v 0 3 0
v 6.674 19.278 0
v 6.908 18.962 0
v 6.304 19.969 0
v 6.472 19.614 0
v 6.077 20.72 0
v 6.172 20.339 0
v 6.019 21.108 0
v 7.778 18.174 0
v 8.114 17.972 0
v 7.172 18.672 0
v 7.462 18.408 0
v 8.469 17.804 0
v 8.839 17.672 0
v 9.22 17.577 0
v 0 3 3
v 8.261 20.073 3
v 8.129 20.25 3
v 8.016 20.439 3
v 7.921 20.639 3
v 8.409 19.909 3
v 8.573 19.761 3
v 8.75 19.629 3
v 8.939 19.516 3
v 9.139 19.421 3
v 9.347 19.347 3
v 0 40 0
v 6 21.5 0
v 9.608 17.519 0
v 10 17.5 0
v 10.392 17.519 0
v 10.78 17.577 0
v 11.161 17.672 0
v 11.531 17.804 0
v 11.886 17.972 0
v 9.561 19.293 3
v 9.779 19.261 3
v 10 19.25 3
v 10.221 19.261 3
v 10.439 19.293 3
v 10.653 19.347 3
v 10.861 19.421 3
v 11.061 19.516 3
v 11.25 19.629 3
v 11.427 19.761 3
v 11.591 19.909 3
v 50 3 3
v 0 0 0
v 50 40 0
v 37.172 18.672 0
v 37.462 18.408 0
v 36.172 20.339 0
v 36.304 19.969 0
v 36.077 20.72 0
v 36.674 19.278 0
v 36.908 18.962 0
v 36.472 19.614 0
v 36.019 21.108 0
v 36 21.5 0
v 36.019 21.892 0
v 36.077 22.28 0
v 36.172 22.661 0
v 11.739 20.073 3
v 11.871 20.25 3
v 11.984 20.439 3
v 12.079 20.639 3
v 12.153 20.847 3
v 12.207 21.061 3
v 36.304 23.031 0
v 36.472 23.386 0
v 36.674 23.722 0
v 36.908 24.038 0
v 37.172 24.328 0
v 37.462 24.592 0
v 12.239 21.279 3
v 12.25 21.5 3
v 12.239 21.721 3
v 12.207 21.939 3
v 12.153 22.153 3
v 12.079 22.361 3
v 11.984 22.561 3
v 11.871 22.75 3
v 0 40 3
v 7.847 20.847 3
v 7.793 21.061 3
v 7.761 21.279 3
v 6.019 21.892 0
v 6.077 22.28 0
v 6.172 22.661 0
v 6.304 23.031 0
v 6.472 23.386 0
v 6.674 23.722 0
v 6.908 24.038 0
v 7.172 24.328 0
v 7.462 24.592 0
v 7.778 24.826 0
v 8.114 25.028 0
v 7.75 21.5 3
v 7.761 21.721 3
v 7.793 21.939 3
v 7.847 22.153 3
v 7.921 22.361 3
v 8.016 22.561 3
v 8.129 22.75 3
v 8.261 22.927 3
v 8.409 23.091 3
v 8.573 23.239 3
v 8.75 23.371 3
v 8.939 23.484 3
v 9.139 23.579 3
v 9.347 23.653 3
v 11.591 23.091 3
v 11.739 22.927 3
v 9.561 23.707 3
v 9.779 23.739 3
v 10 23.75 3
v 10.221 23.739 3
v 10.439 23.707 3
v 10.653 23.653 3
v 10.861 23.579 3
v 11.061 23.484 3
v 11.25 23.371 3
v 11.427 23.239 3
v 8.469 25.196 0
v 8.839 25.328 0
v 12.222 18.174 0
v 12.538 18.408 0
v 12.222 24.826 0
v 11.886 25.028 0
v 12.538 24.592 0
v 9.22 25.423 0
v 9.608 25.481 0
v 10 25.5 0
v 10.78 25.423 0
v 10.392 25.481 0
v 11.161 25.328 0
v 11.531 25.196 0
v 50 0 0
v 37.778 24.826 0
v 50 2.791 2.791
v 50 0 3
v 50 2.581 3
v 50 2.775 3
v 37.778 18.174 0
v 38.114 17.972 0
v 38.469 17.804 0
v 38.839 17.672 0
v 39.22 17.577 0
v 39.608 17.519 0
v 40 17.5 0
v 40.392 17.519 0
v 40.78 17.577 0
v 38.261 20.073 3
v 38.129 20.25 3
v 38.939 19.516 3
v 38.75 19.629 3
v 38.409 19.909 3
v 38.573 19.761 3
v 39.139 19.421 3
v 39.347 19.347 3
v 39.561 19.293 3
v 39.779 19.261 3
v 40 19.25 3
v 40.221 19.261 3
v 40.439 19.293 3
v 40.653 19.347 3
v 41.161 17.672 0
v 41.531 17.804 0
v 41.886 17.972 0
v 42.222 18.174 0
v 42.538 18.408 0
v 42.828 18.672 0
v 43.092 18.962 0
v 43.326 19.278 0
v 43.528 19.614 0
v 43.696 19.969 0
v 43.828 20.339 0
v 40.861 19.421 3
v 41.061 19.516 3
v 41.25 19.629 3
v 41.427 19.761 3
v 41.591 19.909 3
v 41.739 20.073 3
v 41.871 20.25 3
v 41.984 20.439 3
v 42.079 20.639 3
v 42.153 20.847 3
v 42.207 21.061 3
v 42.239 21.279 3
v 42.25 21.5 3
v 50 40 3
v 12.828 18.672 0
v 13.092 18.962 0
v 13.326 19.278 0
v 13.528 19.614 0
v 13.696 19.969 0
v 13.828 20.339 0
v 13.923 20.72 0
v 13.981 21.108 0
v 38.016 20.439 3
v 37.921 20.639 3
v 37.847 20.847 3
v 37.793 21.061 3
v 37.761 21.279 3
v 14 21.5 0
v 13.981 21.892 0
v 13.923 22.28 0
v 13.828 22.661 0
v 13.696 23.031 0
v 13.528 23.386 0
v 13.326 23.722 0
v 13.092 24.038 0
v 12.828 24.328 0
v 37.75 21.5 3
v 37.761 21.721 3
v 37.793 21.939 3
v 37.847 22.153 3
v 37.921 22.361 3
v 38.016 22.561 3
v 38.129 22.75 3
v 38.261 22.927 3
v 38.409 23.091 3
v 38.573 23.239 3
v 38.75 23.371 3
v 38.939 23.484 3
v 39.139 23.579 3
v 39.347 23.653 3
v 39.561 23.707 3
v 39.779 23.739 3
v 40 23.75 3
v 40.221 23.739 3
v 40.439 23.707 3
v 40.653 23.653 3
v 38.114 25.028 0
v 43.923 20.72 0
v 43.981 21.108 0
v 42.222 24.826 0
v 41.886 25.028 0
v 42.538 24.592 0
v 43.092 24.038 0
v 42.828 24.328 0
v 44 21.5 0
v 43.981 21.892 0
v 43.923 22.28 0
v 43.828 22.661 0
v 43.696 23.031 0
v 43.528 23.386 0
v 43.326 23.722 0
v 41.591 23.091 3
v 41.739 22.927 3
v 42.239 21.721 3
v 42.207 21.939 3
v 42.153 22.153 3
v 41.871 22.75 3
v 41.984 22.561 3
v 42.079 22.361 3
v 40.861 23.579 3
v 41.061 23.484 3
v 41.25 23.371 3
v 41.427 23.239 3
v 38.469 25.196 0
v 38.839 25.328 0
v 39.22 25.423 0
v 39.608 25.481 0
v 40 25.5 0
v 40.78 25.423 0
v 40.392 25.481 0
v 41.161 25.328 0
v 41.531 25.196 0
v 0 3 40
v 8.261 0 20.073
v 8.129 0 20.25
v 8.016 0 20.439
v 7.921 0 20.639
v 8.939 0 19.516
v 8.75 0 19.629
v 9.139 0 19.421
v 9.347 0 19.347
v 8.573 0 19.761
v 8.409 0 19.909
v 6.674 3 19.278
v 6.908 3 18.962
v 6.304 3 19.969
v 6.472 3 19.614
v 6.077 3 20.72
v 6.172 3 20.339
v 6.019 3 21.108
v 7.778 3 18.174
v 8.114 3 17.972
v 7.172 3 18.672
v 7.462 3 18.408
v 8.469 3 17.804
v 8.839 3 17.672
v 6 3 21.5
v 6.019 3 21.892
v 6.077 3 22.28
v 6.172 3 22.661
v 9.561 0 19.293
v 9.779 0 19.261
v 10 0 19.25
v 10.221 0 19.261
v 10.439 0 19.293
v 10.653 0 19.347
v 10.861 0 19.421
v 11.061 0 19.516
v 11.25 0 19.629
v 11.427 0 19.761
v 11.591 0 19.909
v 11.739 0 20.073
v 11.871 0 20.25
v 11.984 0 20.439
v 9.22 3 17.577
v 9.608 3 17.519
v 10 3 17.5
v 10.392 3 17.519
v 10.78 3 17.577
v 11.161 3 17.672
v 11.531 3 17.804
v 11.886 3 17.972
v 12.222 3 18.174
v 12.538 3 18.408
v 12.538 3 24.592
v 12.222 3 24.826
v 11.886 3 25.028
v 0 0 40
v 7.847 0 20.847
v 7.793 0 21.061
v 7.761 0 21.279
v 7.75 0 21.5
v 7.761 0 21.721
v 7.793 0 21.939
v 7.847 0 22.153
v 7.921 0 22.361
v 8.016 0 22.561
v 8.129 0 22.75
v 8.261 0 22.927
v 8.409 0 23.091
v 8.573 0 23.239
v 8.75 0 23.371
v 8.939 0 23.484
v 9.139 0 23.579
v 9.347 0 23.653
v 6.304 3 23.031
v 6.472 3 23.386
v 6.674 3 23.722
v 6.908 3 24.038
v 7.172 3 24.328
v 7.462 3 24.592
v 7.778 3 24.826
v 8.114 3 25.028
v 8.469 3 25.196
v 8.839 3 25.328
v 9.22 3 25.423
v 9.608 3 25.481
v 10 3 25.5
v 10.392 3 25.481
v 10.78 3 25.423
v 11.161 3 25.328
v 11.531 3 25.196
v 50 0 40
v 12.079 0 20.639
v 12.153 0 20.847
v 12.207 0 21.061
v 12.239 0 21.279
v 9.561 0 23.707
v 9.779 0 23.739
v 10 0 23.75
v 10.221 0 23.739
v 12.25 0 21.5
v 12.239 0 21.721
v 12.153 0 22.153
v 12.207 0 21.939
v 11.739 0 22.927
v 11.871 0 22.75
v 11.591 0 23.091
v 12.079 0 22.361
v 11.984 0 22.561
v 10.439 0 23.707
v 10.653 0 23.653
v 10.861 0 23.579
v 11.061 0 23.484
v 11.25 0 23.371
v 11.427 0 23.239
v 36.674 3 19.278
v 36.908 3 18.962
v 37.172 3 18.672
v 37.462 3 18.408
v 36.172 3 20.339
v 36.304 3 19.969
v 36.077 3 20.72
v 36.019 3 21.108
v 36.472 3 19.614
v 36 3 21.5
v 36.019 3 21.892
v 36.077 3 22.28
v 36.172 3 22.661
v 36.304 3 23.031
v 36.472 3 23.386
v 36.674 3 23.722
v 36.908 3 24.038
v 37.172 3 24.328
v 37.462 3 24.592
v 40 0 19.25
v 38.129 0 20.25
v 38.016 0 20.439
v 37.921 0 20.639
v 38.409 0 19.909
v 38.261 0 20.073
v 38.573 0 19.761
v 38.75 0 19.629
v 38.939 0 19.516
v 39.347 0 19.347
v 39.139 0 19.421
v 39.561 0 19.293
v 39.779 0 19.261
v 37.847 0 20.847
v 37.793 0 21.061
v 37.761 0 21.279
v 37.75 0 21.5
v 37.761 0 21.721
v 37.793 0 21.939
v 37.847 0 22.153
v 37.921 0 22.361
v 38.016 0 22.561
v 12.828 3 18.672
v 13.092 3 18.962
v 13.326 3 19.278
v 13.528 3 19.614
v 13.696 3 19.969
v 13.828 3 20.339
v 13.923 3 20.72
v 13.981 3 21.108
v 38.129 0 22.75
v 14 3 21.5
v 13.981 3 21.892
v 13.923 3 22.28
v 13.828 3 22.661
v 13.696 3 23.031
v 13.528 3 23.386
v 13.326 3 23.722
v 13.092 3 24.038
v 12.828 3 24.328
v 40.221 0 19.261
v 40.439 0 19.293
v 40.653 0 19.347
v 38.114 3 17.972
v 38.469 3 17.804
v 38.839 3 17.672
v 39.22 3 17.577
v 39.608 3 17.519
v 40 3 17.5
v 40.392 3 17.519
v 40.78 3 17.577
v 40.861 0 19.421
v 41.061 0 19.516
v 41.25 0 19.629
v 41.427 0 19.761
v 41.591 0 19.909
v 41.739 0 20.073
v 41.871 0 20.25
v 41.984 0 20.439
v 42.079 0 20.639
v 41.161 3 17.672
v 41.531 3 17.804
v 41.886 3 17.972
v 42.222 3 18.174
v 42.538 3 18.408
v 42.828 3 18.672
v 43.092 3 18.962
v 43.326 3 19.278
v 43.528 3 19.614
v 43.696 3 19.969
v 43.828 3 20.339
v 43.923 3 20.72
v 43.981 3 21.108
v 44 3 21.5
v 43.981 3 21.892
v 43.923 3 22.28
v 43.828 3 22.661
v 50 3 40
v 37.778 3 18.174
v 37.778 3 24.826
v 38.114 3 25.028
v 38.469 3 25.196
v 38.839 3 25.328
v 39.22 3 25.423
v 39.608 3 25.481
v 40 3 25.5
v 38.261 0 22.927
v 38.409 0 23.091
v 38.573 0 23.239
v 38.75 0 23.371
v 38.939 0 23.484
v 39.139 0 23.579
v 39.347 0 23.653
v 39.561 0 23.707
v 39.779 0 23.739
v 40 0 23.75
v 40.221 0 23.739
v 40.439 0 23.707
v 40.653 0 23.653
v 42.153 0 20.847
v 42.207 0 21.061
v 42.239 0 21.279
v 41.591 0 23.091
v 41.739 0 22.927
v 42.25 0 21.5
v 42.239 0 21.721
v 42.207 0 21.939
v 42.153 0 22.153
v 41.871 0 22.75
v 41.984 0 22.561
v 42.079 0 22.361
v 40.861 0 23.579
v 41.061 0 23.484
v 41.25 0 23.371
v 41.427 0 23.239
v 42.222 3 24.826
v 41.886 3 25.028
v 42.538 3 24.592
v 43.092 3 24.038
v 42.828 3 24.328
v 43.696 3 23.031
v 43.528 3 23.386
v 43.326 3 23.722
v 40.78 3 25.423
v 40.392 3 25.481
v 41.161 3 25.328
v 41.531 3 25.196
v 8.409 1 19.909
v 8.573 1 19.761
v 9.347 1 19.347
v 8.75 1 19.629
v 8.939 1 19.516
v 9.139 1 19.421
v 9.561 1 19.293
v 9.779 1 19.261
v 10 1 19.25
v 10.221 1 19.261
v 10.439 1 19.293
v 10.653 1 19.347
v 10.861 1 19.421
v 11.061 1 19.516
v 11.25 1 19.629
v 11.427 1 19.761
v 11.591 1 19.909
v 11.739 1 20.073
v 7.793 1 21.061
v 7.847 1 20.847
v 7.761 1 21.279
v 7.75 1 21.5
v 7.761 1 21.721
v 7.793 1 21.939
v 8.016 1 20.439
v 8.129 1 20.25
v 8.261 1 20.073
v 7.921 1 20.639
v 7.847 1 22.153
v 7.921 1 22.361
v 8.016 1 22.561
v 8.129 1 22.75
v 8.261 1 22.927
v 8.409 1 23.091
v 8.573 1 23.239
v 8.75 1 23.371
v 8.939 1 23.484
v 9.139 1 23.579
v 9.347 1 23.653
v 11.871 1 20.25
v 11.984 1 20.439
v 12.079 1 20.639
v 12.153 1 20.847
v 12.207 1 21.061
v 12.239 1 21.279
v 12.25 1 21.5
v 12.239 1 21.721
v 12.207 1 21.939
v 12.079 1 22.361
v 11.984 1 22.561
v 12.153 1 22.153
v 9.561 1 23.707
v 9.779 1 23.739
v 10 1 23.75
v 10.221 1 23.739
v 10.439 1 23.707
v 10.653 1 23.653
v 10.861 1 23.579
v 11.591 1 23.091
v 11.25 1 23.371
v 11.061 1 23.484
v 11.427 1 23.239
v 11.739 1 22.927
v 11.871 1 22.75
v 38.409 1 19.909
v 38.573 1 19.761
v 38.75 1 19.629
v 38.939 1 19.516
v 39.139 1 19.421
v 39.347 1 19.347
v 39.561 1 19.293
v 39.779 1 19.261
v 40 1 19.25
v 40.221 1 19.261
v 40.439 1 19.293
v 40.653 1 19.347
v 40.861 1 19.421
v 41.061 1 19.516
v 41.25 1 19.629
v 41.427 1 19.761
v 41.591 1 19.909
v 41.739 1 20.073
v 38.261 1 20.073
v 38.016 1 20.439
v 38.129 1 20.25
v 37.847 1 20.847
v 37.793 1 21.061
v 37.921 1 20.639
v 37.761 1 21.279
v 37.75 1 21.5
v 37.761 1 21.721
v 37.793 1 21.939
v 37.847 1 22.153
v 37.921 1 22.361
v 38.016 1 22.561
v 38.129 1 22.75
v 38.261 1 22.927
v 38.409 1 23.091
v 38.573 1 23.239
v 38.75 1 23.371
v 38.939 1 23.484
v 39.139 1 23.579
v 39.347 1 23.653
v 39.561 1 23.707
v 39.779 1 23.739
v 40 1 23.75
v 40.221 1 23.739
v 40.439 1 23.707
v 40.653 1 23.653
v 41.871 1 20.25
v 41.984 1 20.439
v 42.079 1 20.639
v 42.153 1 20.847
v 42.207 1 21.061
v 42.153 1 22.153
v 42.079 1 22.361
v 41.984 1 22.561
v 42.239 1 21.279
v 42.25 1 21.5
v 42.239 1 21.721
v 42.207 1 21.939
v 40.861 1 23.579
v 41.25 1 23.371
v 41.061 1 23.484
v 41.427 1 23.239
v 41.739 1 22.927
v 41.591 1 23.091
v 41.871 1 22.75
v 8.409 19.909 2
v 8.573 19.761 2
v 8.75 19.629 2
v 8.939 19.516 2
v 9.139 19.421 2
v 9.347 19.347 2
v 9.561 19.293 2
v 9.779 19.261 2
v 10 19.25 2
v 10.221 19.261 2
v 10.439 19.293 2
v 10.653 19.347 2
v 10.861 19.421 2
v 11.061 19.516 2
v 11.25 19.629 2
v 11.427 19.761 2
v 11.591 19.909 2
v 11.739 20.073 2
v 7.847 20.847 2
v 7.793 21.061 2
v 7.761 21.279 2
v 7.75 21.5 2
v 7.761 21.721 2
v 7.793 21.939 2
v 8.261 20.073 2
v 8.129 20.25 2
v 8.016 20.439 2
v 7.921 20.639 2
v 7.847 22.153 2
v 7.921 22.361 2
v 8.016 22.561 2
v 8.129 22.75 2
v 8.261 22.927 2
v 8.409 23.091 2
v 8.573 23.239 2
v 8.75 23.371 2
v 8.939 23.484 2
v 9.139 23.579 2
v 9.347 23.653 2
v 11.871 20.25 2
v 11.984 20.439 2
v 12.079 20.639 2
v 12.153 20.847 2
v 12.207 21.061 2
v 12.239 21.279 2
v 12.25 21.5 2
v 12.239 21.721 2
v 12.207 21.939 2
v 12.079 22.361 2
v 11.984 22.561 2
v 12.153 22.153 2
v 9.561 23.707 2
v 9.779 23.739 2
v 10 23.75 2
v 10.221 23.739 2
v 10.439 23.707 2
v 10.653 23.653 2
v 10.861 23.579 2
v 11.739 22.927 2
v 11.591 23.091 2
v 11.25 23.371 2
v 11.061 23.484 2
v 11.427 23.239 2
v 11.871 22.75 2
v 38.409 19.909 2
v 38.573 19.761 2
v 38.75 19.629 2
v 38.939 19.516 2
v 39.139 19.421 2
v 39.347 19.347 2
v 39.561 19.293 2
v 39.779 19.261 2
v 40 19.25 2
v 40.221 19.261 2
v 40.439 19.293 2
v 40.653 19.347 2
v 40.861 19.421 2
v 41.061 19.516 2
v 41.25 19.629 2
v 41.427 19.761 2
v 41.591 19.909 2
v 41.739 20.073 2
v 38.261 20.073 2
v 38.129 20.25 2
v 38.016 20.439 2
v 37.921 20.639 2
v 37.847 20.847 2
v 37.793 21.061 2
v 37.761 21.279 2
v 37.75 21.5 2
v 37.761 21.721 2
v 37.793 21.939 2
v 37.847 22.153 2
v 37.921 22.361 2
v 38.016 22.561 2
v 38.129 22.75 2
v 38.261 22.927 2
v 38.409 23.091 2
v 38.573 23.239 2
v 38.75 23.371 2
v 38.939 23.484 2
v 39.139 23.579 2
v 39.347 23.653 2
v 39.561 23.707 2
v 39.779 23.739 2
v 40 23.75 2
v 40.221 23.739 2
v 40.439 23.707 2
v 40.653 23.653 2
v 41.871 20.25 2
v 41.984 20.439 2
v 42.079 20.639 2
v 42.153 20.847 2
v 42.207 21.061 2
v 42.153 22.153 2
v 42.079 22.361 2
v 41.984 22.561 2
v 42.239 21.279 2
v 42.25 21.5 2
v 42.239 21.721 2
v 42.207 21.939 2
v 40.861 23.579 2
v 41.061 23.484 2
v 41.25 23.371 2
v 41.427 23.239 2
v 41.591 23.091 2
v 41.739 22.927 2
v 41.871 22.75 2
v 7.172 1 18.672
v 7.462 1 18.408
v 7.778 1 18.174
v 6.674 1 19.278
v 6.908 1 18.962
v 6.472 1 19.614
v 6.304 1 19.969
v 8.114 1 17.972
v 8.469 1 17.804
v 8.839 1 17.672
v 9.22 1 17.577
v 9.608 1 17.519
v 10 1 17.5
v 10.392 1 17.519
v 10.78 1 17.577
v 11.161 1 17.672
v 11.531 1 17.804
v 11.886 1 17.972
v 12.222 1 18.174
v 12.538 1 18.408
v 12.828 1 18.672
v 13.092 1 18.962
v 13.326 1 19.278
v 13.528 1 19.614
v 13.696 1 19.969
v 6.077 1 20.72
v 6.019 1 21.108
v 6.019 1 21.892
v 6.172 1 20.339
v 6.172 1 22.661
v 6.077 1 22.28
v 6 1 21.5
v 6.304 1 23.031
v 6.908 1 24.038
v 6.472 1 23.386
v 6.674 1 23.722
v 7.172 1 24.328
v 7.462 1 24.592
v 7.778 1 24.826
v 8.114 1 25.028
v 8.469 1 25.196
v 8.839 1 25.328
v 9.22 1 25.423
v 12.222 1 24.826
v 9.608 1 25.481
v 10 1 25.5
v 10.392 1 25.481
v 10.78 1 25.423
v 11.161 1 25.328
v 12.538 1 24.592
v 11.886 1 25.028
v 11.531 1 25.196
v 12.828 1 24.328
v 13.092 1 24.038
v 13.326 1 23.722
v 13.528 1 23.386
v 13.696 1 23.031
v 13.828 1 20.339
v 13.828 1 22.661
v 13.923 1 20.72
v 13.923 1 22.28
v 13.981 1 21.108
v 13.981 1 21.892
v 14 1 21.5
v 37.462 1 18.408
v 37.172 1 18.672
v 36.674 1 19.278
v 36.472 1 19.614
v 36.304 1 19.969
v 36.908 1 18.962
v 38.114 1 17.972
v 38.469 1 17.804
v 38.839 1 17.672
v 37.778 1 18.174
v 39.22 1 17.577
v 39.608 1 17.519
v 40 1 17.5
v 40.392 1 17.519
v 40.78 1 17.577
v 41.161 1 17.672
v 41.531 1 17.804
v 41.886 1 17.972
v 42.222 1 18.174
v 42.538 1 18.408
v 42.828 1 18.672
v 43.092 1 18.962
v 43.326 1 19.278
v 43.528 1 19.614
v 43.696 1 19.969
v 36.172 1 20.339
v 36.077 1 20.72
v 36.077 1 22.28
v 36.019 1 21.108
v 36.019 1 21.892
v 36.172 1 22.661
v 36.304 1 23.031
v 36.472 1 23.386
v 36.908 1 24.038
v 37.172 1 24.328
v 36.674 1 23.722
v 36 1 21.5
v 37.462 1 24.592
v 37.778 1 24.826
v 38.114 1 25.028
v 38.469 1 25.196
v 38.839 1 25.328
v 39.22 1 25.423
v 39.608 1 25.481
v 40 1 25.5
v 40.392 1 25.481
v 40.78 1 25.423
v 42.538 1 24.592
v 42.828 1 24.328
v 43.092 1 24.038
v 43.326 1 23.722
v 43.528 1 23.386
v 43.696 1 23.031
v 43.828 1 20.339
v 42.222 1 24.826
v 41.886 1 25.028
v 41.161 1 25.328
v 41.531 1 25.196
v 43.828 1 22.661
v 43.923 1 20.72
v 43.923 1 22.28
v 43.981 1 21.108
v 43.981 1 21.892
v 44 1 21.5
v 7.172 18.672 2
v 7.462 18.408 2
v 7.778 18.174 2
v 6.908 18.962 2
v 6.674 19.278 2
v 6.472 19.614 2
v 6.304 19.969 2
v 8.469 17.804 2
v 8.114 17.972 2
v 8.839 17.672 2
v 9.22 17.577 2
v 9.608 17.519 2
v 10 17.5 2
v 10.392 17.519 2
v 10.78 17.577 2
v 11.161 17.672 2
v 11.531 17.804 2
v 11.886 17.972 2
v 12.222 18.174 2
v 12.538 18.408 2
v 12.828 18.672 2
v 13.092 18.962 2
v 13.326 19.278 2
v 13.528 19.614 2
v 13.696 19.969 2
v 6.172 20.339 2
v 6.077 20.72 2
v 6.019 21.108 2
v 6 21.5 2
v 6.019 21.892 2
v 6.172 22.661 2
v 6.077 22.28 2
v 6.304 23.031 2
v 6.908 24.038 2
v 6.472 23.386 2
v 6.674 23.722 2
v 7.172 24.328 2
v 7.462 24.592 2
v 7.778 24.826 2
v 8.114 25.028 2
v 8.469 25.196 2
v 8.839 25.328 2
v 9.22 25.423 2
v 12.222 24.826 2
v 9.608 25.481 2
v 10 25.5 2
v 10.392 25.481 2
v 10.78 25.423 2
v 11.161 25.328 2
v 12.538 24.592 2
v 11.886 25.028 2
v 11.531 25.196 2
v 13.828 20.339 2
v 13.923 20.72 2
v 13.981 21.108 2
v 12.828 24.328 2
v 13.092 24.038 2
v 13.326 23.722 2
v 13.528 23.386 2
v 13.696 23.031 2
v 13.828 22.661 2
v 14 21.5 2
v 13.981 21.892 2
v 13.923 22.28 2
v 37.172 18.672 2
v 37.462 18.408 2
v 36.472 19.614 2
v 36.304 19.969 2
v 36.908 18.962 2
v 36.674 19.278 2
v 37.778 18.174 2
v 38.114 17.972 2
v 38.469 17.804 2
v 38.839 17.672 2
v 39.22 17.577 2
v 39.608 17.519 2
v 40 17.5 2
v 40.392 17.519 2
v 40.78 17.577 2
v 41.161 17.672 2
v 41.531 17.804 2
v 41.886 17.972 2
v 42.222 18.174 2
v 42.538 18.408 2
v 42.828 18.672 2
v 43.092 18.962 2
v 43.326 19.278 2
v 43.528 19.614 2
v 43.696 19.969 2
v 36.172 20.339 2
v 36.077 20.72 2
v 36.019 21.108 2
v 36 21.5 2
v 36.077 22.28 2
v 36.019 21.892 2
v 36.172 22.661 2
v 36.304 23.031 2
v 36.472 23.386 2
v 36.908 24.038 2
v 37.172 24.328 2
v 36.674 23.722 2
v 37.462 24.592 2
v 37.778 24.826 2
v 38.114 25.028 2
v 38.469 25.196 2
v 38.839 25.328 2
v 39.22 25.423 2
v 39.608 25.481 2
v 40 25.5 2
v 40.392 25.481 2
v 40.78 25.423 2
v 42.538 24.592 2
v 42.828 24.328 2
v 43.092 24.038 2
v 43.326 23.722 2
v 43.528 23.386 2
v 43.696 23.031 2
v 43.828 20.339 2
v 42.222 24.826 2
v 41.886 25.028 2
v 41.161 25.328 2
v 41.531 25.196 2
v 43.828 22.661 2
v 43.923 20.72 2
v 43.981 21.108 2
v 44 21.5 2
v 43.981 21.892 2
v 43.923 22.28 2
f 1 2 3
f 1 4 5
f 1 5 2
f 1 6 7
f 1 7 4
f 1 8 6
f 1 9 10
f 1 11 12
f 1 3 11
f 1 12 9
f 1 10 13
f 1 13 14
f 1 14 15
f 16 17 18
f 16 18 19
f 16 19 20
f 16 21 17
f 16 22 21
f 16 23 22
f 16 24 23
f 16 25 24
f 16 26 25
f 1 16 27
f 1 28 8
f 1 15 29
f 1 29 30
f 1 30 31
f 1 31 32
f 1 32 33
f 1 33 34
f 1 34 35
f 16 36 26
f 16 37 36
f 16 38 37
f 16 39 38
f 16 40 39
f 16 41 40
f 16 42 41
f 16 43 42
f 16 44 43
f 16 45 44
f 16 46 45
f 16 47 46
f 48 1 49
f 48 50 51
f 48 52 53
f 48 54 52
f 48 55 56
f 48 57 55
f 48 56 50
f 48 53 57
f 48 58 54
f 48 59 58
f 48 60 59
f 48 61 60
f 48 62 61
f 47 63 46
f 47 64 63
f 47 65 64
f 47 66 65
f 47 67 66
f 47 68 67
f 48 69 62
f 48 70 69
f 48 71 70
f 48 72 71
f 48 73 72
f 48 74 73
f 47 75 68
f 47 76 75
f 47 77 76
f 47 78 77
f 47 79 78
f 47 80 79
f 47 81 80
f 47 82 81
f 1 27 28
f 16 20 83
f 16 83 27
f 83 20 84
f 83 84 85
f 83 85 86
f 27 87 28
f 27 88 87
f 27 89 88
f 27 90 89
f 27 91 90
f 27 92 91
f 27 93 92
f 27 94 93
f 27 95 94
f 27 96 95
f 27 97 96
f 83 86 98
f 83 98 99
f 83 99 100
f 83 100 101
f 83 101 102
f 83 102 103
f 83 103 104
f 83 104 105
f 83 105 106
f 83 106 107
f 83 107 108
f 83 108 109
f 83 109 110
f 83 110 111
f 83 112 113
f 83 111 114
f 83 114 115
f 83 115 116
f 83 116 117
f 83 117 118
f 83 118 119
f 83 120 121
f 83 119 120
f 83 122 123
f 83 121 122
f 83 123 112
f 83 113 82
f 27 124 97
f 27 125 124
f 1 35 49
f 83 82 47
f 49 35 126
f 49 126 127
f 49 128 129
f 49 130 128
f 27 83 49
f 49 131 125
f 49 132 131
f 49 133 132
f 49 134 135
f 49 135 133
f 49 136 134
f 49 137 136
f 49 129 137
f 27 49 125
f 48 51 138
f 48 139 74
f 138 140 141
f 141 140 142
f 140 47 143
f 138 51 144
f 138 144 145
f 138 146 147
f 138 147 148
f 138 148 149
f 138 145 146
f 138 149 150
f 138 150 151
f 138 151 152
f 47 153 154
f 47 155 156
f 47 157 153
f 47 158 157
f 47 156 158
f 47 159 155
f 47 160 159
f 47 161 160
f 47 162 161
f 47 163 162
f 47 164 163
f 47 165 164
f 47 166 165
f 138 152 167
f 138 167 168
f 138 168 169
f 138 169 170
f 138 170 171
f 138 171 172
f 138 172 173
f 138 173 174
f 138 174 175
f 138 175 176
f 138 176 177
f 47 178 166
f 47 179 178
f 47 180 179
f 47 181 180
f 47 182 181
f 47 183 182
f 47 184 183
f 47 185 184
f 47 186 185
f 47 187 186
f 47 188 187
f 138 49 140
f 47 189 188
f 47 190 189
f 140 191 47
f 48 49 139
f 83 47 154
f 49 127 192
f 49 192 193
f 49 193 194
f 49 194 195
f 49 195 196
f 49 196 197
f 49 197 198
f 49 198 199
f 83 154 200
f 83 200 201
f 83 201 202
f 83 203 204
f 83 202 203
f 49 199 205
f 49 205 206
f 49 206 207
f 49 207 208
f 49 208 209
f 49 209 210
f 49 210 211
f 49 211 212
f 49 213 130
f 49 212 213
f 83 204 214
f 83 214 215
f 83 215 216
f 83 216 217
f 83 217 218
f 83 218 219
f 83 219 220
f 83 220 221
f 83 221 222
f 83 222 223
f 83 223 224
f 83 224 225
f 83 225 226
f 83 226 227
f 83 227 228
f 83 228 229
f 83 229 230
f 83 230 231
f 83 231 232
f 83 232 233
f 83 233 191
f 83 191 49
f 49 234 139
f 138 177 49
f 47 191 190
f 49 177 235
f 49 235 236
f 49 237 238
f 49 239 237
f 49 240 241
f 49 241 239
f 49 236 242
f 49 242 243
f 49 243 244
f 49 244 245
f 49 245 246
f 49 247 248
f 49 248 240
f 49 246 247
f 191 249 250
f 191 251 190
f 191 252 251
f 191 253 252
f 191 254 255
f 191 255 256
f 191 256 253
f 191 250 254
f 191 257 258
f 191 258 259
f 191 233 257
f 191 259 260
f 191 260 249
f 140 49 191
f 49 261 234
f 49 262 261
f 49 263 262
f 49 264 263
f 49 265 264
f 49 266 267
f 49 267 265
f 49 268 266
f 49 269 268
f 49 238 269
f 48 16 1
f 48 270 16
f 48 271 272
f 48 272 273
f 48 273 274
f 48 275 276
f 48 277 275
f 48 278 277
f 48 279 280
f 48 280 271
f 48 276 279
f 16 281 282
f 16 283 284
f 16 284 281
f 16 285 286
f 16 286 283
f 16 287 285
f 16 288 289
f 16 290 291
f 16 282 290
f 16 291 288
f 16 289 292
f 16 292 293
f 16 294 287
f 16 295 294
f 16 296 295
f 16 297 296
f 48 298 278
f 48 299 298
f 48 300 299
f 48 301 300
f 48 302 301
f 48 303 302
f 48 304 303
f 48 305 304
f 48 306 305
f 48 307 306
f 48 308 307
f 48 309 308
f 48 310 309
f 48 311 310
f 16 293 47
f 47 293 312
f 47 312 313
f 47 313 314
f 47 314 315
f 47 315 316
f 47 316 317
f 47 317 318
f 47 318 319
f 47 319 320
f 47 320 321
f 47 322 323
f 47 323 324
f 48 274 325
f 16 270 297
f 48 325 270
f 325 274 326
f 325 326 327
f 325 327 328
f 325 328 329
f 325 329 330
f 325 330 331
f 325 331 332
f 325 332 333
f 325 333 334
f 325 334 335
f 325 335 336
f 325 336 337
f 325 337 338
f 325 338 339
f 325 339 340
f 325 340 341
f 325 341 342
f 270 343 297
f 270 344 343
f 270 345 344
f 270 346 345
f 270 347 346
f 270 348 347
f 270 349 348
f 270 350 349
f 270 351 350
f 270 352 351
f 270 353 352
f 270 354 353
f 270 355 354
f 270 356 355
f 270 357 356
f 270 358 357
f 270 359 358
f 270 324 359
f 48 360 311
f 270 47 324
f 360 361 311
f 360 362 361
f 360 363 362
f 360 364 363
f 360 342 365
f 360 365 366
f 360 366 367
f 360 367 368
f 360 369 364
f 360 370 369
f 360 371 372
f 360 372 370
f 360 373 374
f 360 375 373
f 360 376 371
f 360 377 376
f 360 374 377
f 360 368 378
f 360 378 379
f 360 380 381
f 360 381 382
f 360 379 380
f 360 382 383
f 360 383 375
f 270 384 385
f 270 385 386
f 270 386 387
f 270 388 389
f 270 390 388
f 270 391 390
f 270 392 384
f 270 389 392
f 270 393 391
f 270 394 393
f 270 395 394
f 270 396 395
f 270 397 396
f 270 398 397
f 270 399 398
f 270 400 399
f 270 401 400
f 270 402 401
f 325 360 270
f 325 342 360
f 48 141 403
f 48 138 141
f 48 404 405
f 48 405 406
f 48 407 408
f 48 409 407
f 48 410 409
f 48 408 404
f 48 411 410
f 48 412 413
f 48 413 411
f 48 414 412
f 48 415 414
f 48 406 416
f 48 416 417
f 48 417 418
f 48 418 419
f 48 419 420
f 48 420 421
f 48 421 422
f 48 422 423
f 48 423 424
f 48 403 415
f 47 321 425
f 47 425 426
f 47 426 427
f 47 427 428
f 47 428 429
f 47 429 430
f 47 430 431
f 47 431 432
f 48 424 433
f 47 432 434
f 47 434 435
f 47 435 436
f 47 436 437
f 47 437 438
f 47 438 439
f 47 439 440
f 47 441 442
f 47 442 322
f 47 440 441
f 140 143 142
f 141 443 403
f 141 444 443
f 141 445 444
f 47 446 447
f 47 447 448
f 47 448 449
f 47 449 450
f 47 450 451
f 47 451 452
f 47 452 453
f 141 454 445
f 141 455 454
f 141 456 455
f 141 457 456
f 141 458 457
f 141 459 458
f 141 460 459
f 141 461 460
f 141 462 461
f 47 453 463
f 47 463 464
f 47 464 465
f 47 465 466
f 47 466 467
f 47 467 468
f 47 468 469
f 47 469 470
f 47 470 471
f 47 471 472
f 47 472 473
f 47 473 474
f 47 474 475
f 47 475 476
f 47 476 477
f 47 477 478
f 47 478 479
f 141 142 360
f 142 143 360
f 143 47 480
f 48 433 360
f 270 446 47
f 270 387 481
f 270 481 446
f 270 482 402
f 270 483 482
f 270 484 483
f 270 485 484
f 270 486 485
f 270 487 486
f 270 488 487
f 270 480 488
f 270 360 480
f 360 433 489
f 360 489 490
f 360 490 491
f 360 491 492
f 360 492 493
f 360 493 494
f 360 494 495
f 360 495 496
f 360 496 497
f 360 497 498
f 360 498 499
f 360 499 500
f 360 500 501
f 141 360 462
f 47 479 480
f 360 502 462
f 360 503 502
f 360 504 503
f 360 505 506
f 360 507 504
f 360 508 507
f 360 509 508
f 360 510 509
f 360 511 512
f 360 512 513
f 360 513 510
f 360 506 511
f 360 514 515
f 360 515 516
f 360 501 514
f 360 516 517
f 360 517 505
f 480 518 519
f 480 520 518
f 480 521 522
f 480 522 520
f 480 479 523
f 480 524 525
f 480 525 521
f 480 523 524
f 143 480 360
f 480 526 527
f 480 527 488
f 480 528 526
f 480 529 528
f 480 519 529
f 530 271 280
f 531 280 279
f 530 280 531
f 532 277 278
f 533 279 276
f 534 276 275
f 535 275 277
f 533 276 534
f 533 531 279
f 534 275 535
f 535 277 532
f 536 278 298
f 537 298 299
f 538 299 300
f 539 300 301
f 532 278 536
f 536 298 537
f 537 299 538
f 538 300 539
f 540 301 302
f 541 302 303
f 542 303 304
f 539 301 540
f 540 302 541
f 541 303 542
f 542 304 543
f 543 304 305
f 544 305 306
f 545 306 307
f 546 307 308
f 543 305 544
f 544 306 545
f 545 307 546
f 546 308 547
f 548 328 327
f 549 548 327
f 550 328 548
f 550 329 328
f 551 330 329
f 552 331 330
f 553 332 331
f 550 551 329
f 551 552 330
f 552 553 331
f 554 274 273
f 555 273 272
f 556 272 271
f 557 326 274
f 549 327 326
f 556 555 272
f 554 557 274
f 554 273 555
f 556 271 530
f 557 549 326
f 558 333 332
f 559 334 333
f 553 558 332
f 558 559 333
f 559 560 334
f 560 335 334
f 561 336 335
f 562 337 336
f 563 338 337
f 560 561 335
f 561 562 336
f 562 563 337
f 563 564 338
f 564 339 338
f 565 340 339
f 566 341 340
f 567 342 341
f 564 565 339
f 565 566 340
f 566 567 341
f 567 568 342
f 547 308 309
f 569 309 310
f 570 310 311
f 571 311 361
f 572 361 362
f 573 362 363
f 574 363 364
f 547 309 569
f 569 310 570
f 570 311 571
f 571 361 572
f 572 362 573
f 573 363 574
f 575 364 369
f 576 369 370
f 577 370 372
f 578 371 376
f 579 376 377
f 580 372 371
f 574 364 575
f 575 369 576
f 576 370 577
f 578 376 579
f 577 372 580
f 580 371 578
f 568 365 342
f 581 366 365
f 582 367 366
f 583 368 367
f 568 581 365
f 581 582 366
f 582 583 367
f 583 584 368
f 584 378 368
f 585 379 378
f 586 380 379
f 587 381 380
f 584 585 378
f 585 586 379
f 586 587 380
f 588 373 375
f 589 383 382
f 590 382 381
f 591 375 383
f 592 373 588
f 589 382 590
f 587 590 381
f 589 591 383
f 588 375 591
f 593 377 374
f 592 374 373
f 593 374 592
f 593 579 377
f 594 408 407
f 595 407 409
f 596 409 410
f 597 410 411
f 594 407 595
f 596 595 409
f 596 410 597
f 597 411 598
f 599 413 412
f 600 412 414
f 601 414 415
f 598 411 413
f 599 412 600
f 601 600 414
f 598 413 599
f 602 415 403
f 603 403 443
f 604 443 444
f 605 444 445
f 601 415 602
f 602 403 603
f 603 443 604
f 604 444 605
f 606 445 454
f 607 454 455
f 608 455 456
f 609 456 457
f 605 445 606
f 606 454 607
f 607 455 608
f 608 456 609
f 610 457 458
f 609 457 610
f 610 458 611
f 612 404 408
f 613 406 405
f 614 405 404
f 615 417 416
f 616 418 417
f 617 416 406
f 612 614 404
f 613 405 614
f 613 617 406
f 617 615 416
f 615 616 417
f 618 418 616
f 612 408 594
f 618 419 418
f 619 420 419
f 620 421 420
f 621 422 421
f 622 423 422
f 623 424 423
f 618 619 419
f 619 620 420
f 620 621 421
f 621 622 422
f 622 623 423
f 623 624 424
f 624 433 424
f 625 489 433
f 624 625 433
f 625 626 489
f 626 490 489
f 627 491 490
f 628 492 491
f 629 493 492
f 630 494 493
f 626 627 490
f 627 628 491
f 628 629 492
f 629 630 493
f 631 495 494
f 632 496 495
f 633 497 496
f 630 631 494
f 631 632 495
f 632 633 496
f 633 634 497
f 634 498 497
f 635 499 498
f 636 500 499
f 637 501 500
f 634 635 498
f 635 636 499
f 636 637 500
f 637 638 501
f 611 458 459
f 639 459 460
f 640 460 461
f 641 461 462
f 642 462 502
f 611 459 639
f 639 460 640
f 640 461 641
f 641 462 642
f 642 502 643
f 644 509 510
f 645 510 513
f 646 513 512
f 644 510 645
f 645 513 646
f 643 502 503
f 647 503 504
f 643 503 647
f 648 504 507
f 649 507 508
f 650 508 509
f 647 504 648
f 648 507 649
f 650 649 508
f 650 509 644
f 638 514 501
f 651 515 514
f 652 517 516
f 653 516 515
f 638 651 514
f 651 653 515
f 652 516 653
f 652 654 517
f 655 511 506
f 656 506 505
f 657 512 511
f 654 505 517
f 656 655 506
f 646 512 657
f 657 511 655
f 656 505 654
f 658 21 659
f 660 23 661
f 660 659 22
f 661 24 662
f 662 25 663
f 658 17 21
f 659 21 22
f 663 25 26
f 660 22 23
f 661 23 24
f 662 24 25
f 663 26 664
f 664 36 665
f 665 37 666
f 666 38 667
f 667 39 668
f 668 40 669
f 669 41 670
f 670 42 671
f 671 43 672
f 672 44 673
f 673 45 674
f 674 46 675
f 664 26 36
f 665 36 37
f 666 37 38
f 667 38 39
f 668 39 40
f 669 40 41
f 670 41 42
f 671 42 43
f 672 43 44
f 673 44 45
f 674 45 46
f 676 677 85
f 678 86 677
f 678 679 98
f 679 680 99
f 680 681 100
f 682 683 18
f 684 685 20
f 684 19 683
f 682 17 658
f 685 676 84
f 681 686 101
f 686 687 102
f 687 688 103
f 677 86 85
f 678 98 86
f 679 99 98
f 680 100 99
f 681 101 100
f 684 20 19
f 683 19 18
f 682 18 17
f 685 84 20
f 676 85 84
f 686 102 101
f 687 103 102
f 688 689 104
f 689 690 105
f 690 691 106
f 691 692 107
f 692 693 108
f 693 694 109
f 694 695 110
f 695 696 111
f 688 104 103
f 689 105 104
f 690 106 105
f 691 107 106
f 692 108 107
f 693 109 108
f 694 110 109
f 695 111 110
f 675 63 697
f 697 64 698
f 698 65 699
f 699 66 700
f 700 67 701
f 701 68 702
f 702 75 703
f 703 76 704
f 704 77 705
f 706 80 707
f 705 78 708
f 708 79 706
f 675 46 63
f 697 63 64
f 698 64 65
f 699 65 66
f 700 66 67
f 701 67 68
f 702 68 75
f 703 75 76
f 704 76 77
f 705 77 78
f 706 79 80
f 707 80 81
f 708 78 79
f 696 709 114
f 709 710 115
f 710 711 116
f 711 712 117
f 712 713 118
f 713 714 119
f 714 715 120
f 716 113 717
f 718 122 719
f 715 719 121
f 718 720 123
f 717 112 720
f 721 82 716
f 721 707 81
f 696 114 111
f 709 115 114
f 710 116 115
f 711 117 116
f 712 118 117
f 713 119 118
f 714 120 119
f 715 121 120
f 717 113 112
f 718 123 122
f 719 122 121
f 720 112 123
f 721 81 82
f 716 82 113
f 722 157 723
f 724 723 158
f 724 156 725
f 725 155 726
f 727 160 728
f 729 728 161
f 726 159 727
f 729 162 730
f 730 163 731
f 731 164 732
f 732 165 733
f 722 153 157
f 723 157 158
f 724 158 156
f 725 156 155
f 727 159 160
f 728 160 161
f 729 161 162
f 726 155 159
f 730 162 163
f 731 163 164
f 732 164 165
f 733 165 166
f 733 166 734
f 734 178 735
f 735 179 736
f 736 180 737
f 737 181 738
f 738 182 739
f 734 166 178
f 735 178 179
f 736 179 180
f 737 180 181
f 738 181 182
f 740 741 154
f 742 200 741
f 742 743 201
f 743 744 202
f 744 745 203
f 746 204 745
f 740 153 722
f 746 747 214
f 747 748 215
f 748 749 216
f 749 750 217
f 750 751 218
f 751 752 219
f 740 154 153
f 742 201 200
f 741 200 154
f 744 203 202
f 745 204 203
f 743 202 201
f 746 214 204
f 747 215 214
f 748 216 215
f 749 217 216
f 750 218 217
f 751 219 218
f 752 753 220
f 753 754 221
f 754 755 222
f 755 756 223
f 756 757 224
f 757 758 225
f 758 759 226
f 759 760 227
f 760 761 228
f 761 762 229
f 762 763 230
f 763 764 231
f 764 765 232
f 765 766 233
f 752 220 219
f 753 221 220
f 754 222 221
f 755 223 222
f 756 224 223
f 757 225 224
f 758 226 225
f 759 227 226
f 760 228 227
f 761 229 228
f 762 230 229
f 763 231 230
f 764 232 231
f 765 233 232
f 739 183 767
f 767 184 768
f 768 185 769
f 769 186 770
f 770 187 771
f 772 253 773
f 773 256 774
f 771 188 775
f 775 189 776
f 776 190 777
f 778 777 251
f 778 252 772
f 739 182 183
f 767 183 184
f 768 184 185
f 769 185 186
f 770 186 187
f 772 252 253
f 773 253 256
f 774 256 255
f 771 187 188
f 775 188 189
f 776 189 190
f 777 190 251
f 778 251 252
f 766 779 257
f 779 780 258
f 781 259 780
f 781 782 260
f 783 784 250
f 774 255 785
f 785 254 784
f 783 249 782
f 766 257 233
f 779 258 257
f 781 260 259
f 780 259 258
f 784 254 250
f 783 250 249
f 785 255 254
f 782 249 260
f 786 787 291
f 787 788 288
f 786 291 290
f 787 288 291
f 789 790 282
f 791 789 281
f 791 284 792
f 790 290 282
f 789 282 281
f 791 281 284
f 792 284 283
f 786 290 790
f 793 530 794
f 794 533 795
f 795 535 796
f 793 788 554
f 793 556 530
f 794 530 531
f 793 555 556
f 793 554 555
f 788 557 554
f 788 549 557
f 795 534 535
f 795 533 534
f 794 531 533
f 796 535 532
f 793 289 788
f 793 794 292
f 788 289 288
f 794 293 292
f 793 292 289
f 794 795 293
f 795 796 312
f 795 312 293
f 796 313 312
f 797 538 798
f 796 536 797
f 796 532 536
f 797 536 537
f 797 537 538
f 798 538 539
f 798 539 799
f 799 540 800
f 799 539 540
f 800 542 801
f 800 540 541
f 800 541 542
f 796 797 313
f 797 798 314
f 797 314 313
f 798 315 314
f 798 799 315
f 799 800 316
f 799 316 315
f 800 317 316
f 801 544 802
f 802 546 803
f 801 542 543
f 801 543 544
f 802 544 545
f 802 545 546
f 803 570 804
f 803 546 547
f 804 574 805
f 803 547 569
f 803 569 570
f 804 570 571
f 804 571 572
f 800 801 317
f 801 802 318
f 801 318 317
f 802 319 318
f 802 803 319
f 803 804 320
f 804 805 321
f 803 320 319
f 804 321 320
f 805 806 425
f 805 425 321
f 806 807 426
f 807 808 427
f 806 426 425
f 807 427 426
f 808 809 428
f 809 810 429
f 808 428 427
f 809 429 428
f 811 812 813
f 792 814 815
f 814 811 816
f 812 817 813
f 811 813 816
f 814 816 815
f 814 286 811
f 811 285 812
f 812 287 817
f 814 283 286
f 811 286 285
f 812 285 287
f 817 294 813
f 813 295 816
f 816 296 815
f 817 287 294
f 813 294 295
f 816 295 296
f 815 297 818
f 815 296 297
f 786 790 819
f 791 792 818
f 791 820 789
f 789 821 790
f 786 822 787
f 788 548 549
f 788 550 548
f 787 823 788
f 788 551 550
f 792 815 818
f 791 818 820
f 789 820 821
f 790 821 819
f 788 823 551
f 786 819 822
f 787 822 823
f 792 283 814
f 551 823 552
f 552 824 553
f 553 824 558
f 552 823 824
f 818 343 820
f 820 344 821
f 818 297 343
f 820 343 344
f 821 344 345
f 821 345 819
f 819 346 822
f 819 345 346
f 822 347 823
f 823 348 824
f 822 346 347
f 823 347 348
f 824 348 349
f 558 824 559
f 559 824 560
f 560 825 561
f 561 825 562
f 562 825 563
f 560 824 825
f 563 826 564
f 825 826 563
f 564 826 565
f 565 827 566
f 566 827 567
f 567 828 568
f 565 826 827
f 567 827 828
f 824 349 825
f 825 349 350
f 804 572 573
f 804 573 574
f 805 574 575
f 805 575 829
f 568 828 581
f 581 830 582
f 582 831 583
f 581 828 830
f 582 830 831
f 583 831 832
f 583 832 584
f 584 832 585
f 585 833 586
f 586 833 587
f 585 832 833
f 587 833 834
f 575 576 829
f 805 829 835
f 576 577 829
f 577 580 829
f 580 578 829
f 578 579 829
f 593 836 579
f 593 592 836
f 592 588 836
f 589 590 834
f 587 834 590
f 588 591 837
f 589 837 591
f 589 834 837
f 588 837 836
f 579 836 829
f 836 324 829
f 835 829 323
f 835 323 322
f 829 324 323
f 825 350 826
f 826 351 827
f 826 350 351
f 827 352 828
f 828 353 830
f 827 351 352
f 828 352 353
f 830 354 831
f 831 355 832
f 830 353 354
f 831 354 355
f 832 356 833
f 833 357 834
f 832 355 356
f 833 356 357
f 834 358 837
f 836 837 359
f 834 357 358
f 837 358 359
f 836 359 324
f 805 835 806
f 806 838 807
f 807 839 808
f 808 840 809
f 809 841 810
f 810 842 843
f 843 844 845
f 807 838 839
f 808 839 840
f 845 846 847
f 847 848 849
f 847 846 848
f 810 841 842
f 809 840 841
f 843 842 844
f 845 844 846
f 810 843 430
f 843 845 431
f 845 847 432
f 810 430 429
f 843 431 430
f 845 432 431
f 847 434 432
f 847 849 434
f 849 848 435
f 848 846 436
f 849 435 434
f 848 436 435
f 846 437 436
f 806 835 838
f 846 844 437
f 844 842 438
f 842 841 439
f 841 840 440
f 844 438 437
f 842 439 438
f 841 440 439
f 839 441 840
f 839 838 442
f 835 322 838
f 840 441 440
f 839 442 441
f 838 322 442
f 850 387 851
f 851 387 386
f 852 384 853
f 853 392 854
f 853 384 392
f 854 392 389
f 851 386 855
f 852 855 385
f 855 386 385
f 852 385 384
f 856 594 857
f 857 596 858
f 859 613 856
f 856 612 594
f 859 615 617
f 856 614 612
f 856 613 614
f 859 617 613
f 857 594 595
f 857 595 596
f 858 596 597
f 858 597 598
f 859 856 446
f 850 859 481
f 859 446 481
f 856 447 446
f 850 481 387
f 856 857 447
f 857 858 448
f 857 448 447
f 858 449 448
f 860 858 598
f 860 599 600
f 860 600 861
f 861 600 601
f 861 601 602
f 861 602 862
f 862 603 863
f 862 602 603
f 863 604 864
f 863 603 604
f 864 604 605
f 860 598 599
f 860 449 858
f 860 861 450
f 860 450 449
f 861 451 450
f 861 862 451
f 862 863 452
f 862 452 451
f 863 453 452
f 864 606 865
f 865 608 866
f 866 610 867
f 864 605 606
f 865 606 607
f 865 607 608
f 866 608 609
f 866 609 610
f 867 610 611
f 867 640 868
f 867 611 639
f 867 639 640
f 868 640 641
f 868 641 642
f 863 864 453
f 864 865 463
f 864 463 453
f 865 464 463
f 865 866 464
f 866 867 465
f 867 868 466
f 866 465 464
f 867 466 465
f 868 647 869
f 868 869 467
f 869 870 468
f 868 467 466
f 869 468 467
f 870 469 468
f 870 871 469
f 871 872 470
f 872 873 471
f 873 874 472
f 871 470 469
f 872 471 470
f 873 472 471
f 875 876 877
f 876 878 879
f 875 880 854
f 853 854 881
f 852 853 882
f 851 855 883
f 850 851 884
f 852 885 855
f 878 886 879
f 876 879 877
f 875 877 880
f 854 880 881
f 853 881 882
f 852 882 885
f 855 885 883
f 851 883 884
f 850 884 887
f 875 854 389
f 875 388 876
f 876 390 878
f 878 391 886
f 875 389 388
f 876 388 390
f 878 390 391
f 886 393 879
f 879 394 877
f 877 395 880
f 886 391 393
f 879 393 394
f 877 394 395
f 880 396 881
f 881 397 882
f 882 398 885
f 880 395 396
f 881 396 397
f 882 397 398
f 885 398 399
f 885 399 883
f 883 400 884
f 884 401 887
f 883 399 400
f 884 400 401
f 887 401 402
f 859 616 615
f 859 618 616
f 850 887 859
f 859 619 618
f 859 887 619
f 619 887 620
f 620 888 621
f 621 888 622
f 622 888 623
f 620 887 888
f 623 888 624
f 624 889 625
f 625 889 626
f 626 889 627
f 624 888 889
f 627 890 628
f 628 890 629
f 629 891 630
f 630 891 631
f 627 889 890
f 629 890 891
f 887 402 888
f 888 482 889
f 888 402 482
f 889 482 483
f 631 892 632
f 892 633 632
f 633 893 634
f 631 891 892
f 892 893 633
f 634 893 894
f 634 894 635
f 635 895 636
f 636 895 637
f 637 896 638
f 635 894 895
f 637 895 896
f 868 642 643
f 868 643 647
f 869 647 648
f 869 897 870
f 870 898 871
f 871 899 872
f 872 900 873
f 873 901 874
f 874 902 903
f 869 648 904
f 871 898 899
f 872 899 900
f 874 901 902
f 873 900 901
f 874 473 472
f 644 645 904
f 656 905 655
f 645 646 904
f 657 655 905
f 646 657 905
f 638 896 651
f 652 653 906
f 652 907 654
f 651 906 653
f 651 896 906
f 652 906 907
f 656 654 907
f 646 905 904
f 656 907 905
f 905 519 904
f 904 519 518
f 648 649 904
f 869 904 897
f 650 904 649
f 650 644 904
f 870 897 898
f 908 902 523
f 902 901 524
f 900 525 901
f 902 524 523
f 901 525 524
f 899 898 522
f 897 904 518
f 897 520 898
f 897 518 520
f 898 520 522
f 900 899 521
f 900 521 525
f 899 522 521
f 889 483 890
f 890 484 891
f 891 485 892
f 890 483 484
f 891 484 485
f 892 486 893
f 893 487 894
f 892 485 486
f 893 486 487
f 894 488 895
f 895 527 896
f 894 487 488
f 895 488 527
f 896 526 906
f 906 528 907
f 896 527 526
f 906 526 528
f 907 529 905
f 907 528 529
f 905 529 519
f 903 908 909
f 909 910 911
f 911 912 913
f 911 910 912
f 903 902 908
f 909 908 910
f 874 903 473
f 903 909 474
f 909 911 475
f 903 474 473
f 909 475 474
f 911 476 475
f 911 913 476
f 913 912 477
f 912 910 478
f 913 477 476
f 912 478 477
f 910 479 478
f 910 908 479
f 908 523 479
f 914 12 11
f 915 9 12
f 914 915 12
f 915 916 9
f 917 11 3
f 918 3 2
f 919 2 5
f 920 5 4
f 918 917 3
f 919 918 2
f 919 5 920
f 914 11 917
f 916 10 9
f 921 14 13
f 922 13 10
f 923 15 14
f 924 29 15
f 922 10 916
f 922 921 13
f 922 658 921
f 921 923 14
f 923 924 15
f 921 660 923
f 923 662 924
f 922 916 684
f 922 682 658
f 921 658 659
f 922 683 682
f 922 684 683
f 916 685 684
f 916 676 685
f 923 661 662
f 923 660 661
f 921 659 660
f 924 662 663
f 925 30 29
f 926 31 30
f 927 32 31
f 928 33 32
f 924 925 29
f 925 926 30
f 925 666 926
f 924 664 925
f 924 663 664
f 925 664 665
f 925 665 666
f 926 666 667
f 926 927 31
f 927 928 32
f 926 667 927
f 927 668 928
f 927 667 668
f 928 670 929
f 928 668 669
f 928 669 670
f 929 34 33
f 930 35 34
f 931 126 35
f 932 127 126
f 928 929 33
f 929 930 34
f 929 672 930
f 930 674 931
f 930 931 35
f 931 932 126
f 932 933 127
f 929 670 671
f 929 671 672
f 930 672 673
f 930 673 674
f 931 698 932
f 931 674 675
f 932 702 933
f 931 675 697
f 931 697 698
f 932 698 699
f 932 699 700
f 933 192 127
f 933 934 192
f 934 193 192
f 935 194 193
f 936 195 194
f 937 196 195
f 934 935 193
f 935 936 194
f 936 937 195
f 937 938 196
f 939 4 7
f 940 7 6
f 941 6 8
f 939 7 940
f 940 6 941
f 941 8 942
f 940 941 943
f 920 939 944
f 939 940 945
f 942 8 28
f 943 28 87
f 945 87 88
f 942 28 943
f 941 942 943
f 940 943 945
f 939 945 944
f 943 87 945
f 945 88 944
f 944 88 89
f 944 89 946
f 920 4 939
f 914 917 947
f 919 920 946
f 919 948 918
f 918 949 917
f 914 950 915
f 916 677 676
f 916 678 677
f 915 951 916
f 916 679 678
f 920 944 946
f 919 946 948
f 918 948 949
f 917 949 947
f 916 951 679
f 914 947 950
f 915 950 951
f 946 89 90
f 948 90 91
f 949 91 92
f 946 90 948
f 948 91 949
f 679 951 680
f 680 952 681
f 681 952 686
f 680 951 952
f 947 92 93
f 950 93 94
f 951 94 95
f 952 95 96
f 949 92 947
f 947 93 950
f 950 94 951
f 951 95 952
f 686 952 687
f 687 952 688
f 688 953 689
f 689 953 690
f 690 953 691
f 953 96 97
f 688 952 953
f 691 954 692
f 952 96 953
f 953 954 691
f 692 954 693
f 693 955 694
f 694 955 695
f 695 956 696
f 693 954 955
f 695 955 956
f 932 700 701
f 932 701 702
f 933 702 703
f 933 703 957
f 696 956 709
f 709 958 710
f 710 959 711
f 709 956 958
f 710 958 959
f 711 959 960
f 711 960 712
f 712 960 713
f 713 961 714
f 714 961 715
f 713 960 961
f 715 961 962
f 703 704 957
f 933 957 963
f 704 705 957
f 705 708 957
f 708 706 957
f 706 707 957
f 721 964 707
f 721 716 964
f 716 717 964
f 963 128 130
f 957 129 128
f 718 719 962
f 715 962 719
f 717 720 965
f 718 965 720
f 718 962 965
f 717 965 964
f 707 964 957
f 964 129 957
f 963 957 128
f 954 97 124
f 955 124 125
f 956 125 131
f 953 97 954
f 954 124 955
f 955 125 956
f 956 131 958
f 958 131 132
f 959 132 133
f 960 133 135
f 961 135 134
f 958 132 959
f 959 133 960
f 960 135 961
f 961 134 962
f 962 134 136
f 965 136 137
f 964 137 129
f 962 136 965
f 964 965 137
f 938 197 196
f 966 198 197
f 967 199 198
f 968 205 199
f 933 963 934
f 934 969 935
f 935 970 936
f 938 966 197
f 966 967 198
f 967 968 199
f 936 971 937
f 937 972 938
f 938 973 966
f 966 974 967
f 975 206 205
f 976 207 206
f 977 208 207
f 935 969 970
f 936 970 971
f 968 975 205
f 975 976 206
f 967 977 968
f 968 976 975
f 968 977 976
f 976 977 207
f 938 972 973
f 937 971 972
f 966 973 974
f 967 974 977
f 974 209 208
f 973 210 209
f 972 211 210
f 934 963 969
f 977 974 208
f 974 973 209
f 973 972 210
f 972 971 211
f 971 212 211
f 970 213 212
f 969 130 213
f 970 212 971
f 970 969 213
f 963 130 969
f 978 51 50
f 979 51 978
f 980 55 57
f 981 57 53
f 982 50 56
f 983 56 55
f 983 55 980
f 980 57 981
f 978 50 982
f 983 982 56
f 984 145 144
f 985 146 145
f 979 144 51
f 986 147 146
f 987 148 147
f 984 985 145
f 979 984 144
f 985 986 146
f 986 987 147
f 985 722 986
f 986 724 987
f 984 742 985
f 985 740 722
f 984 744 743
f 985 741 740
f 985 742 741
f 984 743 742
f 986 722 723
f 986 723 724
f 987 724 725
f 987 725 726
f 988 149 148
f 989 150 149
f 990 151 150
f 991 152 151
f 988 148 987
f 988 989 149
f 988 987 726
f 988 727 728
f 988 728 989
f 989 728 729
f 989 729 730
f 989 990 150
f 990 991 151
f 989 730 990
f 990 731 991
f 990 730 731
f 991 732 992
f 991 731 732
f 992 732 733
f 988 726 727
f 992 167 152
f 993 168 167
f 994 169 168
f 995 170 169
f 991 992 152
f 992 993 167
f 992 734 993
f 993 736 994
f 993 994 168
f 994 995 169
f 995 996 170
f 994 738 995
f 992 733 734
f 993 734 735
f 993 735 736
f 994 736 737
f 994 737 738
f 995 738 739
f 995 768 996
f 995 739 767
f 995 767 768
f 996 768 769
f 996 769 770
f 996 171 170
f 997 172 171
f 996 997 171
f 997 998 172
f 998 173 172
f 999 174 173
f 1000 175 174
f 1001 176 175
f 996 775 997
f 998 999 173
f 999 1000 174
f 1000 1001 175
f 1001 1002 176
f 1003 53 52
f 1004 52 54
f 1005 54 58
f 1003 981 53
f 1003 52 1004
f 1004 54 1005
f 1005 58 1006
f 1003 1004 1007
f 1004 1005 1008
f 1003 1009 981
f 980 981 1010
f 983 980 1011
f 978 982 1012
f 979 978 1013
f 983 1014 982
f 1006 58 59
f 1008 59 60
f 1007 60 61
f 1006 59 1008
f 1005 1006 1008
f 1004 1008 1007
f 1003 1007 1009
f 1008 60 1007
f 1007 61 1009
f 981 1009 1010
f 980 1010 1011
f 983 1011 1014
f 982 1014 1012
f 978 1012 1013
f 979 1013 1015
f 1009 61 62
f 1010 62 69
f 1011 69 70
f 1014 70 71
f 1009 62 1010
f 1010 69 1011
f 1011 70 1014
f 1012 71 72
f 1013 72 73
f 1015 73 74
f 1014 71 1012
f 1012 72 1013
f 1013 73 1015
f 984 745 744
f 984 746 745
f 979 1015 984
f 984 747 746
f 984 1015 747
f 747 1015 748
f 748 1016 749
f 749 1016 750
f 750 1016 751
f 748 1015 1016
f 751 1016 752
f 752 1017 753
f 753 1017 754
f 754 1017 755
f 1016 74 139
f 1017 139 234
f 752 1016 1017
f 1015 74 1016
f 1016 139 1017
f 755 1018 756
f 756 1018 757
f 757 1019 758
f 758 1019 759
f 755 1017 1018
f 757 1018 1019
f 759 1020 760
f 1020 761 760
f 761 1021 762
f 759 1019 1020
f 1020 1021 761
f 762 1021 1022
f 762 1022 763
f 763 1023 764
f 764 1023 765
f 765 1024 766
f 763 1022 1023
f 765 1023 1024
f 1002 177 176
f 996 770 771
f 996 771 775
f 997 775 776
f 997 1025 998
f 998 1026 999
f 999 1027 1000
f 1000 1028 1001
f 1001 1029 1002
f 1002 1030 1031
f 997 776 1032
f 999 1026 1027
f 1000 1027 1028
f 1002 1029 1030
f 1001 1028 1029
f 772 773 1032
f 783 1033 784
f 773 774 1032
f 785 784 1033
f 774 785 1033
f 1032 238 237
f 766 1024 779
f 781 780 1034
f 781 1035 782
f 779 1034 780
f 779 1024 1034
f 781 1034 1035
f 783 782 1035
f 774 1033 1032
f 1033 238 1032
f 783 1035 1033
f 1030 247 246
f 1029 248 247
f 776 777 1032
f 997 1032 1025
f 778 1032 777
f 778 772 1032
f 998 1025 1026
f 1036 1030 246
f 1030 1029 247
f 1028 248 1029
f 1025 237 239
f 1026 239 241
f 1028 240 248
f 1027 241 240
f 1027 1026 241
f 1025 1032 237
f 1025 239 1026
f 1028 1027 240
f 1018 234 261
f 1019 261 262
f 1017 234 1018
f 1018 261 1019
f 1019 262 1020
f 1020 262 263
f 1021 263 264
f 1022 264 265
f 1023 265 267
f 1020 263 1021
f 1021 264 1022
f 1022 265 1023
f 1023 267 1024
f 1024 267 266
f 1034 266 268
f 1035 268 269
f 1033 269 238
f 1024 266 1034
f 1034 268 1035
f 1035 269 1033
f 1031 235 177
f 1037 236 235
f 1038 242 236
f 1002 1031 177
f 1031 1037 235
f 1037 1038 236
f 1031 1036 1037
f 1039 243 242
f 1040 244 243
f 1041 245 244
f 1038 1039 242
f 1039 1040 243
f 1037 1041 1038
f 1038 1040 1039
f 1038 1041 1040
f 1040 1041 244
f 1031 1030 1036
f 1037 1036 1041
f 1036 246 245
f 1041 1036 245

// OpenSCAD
$fn = 64;

width = 50;
depth = 40;
height = 40;
t = 3;

hole_d = 4.5;
cs_d = 8;
cs_depth = 2;

module countersunk_hole_z() {
    // axis along Z, countersink on top (+Z side)
    translate([0, 0, -1])
        cylinder(d = hole_d, h = t + 2);
    translate([0, 0, t - cs_depth])
        cylinder(d = cs_d, h = cs_depth + 1);
}

difference() {
    union() {
        // Horizontal flange
        cube([width, depth, t]);
        // Vertical flange
        cube([width, t, height]);
    }
    
    // Horizontal flange holes (countersink on bottom, -Z side)
    // Center line in Y at y = (t + depth)/2... wait, "面の縁から10mm内側"
    // Holes along width centerline? "各面の中心線上で、面の縁から10mm内側、左右対称に2個"
    // Center line of horizontal face = y center; holes at x = 10 and x = width-10
    // Actually "中心線上" - on the centerline, "面の縁から10mm内側" from edge
    // 2 holes left-right symmetric -> along X axis at y = depth/2
    
    // Horizontal: countersink faces down (outside = -Z)
    for (x = [10, width - 10]) {
        translate([x, (t + depth) / 2, 0])
            rotate([180, 0, 0])
                translate([0, 0, -t])
                    countersunk_hole_z();
    }
    
    // Vertical flange: countersink faces +Y (outside)
    for (x = [10, width - 10]) {
        translate([x, 0, (t + height) / 2])
            rotate([-90, 0, 0])
                countersunk_hole_z();
    }
}
